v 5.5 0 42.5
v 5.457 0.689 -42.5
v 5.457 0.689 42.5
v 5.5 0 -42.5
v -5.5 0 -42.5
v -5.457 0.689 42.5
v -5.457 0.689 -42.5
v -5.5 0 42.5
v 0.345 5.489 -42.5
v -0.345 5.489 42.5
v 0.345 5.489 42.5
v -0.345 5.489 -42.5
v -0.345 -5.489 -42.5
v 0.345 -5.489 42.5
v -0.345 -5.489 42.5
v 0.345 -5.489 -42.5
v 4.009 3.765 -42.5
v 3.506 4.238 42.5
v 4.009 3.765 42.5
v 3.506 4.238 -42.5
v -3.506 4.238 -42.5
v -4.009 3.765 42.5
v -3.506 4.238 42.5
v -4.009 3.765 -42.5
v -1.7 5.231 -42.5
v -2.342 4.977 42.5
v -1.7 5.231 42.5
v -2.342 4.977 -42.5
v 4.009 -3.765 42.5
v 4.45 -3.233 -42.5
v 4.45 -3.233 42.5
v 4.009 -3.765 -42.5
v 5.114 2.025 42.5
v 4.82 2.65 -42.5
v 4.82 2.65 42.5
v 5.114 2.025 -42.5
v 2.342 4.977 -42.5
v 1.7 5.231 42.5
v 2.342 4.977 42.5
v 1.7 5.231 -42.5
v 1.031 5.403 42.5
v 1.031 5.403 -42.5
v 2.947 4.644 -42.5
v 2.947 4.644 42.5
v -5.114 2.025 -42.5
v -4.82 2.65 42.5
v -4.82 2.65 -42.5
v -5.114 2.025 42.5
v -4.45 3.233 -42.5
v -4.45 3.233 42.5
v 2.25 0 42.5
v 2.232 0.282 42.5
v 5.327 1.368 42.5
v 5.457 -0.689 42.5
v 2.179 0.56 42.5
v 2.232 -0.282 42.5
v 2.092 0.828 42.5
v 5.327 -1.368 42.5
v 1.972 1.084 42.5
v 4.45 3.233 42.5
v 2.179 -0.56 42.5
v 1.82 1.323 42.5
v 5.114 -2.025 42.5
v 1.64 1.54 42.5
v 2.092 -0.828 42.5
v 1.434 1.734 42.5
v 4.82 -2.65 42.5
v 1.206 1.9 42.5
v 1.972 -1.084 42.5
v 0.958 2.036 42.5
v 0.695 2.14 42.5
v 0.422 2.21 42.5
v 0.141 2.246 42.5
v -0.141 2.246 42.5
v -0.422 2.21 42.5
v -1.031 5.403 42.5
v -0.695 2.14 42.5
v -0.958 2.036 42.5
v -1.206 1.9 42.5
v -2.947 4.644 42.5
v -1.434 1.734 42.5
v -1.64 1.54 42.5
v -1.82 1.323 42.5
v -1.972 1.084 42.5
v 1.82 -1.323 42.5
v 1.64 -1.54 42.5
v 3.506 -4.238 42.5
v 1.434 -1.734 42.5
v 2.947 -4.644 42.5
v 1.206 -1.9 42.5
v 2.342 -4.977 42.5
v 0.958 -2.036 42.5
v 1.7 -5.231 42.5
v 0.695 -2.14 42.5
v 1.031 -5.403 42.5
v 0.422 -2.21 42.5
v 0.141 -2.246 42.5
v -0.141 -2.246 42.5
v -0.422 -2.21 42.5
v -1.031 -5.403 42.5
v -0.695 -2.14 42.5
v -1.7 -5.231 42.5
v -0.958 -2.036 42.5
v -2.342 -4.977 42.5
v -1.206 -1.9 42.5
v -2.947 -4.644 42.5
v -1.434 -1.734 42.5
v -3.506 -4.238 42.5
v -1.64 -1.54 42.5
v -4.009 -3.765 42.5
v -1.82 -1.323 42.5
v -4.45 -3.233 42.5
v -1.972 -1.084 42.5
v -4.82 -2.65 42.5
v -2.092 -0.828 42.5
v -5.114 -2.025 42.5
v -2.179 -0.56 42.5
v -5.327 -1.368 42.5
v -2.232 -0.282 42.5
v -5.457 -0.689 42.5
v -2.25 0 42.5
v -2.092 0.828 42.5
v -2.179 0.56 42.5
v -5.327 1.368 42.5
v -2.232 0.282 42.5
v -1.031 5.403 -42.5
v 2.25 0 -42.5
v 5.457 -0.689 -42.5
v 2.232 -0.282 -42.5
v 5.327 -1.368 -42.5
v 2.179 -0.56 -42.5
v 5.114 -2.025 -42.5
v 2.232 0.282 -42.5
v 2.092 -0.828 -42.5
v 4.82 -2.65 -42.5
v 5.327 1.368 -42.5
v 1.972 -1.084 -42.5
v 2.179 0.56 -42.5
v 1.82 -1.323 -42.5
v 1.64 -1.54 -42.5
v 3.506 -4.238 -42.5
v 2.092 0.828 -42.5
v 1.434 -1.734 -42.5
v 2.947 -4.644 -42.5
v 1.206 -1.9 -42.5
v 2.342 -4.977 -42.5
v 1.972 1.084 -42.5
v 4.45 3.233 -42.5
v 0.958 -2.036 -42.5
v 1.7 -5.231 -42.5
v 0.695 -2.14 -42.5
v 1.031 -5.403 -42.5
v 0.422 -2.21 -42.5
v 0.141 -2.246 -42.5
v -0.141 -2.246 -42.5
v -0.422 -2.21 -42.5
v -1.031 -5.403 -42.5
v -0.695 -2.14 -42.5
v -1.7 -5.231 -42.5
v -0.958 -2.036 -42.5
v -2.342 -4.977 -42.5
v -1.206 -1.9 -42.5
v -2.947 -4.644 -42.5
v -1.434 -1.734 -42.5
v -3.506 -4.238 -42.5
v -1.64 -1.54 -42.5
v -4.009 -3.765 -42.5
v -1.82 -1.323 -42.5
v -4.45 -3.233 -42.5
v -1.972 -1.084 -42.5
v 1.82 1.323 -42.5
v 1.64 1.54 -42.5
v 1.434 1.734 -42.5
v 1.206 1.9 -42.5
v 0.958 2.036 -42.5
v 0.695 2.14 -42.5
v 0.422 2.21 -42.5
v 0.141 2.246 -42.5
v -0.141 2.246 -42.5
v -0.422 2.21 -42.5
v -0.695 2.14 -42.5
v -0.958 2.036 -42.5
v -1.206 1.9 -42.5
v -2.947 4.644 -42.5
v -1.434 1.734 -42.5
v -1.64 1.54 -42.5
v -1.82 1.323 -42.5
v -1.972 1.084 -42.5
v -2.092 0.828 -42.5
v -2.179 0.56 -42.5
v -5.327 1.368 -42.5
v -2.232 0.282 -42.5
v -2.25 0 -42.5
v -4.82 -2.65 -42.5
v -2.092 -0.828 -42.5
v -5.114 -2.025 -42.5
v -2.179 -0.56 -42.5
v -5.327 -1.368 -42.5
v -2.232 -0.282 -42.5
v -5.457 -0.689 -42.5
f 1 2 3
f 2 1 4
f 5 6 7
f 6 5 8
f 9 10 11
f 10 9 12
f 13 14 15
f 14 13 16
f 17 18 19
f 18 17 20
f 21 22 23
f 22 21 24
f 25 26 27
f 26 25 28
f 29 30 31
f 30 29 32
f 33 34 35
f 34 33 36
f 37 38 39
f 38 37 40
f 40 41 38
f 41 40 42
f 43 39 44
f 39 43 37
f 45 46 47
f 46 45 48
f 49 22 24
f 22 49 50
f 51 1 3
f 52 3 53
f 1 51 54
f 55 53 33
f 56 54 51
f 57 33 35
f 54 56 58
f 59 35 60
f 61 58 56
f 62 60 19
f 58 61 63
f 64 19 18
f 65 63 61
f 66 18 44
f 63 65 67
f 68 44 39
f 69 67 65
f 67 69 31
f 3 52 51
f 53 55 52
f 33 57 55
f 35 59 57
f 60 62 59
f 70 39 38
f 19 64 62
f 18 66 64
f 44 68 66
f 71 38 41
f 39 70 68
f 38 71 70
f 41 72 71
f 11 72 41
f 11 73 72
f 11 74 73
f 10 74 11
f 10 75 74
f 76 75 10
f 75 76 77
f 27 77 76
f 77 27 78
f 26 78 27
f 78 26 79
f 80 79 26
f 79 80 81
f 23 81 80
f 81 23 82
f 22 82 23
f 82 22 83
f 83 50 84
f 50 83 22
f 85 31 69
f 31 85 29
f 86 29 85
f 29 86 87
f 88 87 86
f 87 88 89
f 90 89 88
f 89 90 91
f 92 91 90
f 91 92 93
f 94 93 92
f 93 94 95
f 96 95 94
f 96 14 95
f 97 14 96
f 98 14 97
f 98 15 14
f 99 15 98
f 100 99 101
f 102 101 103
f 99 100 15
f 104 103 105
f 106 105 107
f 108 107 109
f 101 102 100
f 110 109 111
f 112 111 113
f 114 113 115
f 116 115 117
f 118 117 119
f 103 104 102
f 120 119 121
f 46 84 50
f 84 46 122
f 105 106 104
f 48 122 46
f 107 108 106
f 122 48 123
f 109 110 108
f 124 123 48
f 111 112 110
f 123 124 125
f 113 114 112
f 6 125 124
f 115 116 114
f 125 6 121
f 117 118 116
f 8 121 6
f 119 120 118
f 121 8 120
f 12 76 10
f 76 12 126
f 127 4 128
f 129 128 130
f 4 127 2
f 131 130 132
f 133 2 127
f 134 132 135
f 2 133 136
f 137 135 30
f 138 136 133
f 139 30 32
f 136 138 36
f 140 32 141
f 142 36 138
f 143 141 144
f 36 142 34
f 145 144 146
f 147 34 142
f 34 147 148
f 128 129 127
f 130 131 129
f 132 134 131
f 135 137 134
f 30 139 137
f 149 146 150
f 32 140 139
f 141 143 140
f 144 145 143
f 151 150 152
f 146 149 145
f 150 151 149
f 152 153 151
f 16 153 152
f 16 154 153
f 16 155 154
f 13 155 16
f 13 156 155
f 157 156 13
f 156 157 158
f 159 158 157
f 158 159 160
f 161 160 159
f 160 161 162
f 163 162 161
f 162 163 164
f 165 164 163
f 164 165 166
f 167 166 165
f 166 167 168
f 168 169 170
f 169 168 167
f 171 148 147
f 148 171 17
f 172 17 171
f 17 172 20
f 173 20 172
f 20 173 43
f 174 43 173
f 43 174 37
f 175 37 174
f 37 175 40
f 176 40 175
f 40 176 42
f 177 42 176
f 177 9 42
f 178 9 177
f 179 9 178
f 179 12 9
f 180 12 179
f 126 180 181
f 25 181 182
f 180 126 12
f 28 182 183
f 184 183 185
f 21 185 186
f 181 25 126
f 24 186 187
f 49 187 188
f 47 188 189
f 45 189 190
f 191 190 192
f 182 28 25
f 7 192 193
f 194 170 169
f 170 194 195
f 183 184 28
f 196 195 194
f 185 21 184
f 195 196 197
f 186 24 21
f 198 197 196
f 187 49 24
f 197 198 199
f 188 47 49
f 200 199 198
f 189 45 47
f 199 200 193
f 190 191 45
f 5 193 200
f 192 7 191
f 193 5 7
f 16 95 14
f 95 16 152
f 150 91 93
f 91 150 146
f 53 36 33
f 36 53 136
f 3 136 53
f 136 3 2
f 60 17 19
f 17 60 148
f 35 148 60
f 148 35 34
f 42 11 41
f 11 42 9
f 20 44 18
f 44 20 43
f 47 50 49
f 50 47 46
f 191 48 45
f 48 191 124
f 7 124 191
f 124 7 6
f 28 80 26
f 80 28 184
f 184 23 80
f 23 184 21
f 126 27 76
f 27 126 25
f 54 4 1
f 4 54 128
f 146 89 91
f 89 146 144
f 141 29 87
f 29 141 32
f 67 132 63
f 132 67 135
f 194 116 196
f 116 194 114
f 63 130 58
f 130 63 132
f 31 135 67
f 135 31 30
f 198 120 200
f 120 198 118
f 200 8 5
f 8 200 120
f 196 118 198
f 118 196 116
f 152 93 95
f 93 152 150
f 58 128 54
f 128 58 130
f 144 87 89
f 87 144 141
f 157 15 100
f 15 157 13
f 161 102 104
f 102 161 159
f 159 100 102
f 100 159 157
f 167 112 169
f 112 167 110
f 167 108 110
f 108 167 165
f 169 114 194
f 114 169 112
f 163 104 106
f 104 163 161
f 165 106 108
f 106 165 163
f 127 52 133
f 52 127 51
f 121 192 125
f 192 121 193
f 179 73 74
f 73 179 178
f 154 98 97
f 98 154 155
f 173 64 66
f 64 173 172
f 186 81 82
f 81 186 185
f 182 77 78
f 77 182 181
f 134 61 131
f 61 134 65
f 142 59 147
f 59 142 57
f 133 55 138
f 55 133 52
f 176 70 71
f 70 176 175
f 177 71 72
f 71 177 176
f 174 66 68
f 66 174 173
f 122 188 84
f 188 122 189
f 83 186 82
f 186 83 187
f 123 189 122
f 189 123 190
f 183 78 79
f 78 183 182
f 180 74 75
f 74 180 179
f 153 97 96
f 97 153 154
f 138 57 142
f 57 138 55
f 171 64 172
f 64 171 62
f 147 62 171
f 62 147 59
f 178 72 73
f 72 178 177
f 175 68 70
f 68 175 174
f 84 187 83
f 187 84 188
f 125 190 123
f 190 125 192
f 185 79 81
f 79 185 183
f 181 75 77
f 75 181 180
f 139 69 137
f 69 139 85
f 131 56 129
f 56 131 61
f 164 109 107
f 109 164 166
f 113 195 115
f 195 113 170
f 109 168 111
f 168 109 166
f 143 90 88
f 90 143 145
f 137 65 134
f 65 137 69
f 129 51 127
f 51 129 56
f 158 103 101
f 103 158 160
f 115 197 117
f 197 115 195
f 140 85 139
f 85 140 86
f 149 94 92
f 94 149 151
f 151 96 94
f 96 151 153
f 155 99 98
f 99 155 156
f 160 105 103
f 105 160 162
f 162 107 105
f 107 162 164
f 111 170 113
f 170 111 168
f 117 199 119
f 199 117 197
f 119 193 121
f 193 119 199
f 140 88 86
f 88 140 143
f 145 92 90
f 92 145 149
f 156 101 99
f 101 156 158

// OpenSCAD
$fn = 50;


difference() {
	union() {
		translate(v = [0, 0, -42.5000000000]) {
			cylinder(h = 85, r = 5.5000000000);
		}
	}
	union() {
		translate(v = [0, 0, -100.0000000000]) {
			cylinder(h = 200, r = 2.2500000000);
		}
	}
}
